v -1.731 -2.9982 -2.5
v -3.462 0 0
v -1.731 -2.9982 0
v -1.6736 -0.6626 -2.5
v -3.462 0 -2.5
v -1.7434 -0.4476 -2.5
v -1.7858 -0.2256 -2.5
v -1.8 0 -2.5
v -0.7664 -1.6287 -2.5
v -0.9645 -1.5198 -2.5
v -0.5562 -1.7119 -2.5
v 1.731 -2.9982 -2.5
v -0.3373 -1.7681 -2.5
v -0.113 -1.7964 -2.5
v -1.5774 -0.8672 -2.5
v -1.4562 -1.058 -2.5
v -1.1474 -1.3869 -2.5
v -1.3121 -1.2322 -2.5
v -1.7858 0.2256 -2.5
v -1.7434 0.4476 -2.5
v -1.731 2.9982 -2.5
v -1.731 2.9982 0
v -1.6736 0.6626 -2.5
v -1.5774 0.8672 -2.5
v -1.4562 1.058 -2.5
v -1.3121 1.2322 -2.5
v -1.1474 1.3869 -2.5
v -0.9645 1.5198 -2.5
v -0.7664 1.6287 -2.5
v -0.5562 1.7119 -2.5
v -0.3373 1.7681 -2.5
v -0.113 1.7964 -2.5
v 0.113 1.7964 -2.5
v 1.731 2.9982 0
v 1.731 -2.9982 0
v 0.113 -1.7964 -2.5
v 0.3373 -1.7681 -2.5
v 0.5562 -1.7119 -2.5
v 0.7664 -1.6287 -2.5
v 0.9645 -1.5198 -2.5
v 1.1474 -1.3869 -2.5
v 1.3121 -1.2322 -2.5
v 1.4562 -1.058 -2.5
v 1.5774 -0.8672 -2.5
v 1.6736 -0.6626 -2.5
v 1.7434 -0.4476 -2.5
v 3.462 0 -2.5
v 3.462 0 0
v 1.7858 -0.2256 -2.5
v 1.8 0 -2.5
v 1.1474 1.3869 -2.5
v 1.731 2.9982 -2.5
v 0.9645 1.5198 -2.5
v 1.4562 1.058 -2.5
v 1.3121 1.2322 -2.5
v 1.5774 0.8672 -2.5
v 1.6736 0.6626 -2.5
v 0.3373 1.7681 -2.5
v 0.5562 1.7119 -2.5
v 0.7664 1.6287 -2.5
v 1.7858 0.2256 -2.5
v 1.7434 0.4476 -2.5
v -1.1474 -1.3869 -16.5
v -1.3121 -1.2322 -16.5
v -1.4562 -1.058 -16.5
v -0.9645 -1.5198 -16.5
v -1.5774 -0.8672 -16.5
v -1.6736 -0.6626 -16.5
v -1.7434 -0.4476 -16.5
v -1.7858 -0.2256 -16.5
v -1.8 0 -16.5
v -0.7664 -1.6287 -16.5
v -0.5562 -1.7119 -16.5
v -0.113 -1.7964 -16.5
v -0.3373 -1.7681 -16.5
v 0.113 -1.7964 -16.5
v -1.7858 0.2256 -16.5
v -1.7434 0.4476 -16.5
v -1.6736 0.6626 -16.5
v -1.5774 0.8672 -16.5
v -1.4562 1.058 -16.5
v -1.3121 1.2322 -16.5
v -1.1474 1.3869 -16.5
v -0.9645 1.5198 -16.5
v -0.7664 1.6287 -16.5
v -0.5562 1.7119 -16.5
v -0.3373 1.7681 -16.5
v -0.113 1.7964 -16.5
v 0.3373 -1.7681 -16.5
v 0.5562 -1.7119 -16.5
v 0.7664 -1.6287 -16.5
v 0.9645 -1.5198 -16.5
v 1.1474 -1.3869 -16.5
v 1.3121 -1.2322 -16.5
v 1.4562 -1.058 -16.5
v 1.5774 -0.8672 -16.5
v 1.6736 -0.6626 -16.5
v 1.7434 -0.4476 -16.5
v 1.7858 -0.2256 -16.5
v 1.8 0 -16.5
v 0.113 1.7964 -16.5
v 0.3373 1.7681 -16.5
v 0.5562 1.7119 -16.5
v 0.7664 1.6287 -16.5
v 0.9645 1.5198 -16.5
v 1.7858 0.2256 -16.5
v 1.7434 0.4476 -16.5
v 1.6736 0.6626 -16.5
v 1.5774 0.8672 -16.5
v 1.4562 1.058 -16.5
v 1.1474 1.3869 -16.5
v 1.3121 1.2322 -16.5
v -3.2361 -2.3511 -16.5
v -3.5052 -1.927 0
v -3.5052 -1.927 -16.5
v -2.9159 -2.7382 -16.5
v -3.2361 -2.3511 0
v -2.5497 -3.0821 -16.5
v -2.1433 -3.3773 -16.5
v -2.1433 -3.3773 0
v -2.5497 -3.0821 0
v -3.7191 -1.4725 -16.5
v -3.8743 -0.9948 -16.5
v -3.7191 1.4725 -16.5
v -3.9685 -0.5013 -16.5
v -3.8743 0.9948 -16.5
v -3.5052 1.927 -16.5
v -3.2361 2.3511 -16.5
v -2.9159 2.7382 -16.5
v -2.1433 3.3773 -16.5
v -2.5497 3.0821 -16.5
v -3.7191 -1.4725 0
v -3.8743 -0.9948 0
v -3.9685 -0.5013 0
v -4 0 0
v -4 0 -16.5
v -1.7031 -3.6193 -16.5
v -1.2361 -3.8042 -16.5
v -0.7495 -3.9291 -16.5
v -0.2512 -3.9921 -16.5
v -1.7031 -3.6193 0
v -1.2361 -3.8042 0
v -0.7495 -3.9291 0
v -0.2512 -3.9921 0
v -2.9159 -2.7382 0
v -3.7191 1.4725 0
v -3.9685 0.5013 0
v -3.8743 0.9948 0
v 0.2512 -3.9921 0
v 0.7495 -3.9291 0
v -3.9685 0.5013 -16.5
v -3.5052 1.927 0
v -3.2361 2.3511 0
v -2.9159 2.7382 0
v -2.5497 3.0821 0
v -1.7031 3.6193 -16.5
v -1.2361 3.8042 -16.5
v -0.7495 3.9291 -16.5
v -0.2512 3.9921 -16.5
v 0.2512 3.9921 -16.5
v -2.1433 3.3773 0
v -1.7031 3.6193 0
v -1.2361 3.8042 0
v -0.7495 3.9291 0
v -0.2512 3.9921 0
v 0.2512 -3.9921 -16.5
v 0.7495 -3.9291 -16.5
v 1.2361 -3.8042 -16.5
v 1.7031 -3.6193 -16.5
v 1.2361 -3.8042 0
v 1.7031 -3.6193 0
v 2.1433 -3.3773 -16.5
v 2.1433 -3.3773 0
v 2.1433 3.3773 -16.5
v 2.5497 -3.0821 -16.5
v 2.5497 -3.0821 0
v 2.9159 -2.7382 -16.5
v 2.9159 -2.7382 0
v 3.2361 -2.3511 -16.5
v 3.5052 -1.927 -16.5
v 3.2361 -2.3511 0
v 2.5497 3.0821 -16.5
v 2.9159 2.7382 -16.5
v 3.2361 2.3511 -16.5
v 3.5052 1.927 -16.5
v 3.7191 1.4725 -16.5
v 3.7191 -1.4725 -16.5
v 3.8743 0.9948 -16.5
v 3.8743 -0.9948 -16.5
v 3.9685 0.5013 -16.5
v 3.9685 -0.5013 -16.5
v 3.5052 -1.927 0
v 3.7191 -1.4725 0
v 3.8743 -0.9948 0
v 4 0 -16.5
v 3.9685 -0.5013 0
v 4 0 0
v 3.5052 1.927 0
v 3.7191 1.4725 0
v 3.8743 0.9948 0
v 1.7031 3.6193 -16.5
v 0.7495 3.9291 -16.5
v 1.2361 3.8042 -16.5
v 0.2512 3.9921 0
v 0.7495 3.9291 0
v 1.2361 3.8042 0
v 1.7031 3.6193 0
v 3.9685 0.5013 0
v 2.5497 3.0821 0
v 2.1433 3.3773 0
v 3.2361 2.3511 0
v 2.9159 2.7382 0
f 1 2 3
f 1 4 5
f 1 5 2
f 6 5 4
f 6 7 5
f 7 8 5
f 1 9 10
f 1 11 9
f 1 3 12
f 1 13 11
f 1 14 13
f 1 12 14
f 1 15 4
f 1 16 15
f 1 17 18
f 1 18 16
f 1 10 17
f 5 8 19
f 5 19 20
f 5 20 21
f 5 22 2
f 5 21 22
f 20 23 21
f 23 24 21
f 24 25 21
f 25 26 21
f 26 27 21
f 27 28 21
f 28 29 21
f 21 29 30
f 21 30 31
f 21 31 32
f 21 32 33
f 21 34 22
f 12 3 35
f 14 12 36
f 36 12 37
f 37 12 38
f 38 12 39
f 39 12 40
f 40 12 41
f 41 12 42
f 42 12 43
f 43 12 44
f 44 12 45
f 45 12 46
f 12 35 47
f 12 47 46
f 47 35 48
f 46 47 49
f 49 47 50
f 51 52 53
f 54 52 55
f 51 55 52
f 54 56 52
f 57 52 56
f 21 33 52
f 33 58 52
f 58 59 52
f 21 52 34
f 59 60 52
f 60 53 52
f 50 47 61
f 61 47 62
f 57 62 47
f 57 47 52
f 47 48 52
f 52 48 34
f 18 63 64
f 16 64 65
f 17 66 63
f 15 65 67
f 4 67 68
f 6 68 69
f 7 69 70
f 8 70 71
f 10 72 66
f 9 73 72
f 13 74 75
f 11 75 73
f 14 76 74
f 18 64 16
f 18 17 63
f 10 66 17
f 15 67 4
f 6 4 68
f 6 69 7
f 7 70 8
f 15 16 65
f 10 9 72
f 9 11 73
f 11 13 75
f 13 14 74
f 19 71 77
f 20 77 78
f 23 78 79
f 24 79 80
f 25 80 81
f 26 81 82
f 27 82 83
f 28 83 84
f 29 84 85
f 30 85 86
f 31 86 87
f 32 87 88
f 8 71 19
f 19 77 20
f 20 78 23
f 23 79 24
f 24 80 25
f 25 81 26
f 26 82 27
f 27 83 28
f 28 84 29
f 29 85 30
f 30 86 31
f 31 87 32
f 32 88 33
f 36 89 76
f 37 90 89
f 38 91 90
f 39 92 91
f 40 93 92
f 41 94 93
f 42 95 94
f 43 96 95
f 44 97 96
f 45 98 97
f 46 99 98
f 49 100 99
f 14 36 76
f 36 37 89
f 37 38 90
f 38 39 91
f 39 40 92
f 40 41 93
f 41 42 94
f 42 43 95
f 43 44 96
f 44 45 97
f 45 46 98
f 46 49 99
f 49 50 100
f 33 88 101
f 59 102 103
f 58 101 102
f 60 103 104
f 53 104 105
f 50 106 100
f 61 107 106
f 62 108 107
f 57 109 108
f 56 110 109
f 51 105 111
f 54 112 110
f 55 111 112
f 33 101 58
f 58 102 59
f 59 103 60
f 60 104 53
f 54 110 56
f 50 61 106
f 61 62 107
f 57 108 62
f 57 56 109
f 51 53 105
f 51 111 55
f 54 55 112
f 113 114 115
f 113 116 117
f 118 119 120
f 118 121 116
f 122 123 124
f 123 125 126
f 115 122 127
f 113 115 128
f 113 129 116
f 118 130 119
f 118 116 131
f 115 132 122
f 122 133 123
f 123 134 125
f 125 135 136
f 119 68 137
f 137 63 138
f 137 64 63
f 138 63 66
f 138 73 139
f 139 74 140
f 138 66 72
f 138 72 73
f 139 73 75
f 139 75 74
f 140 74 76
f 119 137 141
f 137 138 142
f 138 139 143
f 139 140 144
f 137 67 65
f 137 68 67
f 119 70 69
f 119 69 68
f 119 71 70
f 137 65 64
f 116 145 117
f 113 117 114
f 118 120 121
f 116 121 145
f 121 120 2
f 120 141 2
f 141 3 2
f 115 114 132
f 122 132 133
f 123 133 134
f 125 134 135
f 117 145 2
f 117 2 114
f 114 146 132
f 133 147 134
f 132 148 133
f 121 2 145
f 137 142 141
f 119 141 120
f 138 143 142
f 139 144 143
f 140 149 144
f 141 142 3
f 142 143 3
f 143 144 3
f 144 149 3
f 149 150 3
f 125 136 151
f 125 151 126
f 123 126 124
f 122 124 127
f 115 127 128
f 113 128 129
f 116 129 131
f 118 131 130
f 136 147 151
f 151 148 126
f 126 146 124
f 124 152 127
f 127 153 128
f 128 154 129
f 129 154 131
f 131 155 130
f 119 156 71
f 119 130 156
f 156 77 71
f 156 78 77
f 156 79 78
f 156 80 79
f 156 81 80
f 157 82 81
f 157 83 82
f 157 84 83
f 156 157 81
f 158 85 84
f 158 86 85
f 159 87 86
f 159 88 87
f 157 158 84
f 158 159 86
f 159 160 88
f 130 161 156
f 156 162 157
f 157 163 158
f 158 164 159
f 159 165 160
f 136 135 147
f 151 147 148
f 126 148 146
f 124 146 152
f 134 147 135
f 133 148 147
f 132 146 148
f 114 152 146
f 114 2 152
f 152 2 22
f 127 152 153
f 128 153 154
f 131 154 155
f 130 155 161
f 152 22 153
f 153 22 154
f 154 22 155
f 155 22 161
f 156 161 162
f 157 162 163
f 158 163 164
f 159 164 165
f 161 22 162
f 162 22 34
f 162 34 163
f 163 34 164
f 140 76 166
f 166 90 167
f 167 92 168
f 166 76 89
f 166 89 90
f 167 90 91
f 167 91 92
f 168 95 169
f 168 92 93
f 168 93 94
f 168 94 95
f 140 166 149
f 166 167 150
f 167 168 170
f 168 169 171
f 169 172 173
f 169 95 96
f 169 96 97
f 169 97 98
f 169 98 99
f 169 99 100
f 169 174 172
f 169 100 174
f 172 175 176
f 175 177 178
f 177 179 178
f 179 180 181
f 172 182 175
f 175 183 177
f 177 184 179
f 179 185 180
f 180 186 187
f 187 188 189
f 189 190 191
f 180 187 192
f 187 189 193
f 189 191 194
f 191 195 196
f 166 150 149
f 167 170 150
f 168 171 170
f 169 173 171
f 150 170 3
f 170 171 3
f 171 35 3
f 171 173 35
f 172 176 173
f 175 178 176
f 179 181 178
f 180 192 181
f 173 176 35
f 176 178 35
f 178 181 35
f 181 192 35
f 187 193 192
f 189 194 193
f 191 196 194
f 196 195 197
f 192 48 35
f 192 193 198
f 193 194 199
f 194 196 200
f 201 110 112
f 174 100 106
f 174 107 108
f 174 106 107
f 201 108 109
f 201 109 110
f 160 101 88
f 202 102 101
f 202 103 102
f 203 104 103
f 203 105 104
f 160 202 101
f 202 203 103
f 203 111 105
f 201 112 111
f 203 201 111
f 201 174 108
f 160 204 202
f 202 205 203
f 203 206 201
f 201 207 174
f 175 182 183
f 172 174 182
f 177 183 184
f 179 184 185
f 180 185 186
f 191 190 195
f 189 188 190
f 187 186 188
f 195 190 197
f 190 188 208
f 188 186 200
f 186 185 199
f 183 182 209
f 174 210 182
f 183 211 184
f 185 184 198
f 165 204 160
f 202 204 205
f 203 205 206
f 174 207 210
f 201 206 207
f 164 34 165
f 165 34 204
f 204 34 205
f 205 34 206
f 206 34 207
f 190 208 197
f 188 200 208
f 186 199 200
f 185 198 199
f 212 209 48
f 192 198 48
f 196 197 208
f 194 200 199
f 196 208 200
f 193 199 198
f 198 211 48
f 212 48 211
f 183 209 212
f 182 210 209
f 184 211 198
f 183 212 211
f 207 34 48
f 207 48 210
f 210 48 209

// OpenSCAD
$fn = 50;

difference() {
	union() {
		translate(v = [0, 0, -16.5]) {
			cylinder(h = 16.5, r = 4.0);
		}
	}
	union() {
		translate(v = [0, 0, 0]) {
			rotate(a = [0, 0, 0]) {
				difference() {
					union() {
						translate(v = [0, 0, -2.5]) {
							linear_extrude(height = 2.5) {
								polygon(points = [[3.4619999999999997, 0.0], [1.7310000000000003, 2.9981799479017264], [-1.7309999999999992, 2.9981799479017264], [-3.4619999999999997, 4.2397272186481365e-16], [-1.7310000000000014, -2.998179947901726], [1.7309999999999977, -2.9981799479017277]]);
							}
						}
					}
					union();
				}
			}
		}
		#translate(v = [0, 0, -100.0]) {
			cylinder(h = 200, r = 1.8);
		}
	}
}
